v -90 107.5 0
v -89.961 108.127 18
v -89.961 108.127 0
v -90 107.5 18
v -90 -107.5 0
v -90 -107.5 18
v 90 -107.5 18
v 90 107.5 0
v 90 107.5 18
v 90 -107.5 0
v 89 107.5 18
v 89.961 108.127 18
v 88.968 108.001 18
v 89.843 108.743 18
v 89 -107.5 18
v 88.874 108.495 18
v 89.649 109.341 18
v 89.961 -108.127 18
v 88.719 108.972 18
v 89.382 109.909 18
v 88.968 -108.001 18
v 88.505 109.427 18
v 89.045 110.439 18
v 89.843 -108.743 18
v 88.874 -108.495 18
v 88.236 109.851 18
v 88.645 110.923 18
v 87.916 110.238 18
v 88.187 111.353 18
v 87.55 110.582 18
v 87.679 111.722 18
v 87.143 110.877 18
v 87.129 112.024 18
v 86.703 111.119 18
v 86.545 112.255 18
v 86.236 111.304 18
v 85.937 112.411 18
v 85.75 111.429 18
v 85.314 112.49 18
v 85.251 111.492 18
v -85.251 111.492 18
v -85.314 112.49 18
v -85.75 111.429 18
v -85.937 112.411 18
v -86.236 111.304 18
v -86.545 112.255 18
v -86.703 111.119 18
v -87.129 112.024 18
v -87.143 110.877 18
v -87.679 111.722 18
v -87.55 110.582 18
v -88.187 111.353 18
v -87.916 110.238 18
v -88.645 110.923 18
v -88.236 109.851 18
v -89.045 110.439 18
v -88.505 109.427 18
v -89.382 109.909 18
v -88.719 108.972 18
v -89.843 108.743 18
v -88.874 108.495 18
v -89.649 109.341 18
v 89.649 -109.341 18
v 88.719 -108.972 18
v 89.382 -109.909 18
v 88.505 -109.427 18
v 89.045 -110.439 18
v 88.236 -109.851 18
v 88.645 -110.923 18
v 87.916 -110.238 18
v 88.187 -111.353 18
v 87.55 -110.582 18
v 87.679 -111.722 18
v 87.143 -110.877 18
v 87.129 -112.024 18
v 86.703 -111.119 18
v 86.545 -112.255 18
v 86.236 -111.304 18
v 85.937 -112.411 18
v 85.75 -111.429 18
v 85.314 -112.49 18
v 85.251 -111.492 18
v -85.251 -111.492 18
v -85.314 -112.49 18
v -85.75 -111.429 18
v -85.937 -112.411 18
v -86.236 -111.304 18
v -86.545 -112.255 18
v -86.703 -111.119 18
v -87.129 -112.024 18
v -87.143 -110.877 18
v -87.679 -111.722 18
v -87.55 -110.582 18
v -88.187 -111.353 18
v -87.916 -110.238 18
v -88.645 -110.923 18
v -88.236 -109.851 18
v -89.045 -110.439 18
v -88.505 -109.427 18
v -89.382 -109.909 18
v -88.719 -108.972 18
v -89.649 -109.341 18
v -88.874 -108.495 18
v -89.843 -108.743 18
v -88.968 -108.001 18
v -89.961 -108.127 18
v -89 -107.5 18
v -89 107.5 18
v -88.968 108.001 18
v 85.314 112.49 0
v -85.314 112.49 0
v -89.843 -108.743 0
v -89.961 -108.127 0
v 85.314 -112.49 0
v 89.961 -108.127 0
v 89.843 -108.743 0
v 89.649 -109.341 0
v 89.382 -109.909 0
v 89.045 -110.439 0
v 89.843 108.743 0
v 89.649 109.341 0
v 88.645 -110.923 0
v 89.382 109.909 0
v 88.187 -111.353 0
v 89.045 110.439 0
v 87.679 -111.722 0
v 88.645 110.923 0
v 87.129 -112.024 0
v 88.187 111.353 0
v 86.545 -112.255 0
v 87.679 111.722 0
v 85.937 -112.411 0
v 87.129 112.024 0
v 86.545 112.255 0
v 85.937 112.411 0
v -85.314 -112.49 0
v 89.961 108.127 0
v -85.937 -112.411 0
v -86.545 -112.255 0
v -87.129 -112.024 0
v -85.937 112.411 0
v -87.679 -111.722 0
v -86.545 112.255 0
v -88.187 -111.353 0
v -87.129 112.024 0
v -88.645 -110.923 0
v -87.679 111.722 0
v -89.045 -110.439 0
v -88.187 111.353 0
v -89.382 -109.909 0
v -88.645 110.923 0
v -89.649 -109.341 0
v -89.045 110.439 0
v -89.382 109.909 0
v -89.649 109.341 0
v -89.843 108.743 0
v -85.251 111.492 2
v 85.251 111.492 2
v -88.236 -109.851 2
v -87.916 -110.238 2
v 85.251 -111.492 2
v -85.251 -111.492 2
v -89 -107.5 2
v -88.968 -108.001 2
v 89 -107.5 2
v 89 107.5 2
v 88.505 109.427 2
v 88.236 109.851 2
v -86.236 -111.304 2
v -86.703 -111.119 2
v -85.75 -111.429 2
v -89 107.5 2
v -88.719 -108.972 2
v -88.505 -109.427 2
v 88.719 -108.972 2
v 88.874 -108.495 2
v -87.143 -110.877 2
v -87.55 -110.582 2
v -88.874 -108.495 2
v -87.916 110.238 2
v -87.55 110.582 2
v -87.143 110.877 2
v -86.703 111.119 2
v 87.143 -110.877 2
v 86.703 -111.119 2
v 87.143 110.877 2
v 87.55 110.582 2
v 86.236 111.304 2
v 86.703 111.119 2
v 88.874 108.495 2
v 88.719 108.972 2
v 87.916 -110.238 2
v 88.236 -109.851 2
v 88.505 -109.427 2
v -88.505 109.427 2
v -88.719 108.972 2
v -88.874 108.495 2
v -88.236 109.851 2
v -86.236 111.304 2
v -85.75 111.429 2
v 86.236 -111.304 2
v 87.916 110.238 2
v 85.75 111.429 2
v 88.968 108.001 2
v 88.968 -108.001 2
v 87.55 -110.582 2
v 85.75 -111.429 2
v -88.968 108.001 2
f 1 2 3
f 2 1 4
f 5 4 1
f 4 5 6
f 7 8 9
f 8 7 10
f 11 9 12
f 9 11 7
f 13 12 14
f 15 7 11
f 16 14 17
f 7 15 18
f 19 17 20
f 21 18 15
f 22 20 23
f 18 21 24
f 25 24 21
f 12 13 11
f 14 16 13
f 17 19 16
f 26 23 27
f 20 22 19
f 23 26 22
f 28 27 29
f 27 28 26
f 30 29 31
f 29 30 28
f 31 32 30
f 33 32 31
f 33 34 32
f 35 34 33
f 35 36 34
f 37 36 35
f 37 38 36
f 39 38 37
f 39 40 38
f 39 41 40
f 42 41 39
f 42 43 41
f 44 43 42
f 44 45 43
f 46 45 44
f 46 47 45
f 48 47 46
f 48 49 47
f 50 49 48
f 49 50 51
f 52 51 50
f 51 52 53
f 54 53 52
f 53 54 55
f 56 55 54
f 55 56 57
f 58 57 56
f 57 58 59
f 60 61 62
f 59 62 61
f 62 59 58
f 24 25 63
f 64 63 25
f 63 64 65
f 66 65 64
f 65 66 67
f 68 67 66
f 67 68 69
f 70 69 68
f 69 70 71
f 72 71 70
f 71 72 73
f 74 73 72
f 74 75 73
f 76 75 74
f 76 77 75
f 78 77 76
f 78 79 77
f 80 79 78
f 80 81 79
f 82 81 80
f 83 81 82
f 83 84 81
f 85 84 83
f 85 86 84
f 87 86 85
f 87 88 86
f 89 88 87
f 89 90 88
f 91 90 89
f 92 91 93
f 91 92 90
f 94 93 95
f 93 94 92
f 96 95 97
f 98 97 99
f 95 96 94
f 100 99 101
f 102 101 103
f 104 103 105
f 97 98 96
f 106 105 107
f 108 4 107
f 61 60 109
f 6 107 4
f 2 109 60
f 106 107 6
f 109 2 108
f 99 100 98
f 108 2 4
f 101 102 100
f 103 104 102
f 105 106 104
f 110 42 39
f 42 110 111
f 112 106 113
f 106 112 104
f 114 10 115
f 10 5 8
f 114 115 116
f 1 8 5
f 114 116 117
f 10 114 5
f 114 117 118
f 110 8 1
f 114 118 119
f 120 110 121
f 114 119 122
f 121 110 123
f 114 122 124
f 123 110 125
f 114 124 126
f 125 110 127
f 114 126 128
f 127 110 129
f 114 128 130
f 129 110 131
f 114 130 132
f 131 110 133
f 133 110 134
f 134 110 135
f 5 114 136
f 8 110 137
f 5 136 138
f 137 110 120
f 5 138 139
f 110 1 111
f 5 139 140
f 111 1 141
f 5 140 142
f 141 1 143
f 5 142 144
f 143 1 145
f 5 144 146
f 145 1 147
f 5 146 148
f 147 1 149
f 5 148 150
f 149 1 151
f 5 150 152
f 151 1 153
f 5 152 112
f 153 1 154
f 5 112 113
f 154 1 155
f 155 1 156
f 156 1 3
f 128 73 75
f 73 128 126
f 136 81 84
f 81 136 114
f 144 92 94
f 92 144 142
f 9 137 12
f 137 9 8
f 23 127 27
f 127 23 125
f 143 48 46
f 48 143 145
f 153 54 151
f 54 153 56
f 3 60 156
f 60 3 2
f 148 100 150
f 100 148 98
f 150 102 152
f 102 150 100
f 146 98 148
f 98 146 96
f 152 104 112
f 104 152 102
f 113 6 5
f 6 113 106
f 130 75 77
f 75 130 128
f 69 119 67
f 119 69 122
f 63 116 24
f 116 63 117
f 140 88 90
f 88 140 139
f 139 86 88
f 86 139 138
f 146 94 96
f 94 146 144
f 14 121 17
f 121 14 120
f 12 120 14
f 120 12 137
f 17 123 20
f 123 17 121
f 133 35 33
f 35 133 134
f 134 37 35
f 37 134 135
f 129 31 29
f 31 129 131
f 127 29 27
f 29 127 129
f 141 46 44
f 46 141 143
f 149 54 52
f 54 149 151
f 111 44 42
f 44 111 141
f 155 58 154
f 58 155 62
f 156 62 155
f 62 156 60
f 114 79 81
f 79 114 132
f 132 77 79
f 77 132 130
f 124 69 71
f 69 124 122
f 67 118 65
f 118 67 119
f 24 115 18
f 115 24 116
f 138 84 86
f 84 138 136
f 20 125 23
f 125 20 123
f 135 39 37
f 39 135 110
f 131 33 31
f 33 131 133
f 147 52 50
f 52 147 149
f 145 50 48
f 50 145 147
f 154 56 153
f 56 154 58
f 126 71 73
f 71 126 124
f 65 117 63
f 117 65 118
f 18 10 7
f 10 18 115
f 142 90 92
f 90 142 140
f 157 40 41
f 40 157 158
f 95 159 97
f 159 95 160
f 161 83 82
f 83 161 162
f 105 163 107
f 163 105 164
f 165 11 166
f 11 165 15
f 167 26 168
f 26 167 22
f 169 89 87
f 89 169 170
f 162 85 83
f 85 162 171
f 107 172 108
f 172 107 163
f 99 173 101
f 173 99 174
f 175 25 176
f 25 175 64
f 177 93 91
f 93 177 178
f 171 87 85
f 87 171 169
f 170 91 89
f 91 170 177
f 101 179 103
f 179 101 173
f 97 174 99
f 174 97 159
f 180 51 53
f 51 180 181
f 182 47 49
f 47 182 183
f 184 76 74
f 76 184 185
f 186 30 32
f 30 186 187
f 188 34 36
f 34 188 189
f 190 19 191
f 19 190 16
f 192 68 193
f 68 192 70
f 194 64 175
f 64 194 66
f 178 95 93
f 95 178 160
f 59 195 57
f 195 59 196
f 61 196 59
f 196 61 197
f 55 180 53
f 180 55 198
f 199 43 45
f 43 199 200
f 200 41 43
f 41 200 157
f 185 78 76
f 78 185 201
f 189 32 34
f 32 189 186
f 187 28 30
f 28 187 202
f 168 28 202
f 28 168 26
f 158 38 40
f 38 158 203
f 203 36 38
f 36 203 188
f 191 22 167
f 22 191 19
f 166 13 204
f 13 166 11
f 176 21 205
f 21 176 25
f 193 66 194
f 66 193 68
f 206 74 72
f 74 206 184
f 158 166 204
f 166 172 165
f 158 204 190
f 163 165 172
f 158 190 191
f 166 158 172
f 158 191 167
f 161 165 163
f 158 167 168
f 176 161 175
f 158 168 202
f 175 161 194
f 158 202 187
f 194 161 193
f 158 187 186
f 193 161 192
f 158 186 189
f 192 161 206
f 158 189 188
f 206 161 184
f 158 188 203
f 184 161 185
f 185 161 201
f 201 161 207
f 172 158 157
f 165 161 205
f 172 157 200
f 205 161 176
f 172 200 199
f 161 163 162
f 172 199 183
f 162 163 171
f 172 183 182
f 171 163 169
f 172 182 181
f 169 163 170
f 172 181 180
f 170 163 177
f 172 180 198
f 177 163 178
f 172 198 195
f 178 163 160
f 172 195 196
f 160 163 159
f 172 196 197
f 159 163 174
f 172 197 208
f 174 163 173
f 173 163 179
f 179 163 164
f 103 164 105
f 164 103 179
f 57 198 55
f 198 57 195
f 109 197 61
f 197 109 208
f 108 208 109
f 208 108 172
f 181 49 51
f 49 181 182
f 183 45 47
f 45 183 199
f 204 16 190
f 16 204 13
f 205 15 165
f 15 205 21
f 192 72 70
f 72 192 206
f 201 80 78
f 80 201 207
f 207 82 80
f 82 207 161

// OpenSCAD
$fn = 50;


difference() {
	union() {
		hull() {
			translate(v = [-85.0000000000, 107.5000000000, 0]) {
				cylinder(h = 18, r = 5);
			}
			translate(v = [85.0000000000, 107.5000000000, 0]) {
				cylinder(h = 18, r = 5);
			}
			translate(v = [-85.0000000000, -107.5000000000, 0]) {
				cylinder(h = 18, r = 5);
			}
			translate(v = [85.0000000000, -107.5000000000, 0]) {
				cylinder(h = 18, r = 5);
			}
		}
	}
	union() {
		translate(v = [0, 0, 2]) {
			hull() {
				translate(v = [-85.0000000000, 107.5000000000, 0]) {
					cylinder(h = 16, r = 4);
				}
				translate(v = [85.0000000000, 107.5000000000, 0]) {
					cylinder(h = 16, r = 4);
				}
				translate(v = [-85.0000000000, -107.5000000000, 0]) {
					cylinder(h = 16, r = 4);
				}
				translate(v = [85.0000000000, -107.5000000000, 0]) {
					cylinder(h = 16, r = 4);
				}
			}
		}
	}
}
